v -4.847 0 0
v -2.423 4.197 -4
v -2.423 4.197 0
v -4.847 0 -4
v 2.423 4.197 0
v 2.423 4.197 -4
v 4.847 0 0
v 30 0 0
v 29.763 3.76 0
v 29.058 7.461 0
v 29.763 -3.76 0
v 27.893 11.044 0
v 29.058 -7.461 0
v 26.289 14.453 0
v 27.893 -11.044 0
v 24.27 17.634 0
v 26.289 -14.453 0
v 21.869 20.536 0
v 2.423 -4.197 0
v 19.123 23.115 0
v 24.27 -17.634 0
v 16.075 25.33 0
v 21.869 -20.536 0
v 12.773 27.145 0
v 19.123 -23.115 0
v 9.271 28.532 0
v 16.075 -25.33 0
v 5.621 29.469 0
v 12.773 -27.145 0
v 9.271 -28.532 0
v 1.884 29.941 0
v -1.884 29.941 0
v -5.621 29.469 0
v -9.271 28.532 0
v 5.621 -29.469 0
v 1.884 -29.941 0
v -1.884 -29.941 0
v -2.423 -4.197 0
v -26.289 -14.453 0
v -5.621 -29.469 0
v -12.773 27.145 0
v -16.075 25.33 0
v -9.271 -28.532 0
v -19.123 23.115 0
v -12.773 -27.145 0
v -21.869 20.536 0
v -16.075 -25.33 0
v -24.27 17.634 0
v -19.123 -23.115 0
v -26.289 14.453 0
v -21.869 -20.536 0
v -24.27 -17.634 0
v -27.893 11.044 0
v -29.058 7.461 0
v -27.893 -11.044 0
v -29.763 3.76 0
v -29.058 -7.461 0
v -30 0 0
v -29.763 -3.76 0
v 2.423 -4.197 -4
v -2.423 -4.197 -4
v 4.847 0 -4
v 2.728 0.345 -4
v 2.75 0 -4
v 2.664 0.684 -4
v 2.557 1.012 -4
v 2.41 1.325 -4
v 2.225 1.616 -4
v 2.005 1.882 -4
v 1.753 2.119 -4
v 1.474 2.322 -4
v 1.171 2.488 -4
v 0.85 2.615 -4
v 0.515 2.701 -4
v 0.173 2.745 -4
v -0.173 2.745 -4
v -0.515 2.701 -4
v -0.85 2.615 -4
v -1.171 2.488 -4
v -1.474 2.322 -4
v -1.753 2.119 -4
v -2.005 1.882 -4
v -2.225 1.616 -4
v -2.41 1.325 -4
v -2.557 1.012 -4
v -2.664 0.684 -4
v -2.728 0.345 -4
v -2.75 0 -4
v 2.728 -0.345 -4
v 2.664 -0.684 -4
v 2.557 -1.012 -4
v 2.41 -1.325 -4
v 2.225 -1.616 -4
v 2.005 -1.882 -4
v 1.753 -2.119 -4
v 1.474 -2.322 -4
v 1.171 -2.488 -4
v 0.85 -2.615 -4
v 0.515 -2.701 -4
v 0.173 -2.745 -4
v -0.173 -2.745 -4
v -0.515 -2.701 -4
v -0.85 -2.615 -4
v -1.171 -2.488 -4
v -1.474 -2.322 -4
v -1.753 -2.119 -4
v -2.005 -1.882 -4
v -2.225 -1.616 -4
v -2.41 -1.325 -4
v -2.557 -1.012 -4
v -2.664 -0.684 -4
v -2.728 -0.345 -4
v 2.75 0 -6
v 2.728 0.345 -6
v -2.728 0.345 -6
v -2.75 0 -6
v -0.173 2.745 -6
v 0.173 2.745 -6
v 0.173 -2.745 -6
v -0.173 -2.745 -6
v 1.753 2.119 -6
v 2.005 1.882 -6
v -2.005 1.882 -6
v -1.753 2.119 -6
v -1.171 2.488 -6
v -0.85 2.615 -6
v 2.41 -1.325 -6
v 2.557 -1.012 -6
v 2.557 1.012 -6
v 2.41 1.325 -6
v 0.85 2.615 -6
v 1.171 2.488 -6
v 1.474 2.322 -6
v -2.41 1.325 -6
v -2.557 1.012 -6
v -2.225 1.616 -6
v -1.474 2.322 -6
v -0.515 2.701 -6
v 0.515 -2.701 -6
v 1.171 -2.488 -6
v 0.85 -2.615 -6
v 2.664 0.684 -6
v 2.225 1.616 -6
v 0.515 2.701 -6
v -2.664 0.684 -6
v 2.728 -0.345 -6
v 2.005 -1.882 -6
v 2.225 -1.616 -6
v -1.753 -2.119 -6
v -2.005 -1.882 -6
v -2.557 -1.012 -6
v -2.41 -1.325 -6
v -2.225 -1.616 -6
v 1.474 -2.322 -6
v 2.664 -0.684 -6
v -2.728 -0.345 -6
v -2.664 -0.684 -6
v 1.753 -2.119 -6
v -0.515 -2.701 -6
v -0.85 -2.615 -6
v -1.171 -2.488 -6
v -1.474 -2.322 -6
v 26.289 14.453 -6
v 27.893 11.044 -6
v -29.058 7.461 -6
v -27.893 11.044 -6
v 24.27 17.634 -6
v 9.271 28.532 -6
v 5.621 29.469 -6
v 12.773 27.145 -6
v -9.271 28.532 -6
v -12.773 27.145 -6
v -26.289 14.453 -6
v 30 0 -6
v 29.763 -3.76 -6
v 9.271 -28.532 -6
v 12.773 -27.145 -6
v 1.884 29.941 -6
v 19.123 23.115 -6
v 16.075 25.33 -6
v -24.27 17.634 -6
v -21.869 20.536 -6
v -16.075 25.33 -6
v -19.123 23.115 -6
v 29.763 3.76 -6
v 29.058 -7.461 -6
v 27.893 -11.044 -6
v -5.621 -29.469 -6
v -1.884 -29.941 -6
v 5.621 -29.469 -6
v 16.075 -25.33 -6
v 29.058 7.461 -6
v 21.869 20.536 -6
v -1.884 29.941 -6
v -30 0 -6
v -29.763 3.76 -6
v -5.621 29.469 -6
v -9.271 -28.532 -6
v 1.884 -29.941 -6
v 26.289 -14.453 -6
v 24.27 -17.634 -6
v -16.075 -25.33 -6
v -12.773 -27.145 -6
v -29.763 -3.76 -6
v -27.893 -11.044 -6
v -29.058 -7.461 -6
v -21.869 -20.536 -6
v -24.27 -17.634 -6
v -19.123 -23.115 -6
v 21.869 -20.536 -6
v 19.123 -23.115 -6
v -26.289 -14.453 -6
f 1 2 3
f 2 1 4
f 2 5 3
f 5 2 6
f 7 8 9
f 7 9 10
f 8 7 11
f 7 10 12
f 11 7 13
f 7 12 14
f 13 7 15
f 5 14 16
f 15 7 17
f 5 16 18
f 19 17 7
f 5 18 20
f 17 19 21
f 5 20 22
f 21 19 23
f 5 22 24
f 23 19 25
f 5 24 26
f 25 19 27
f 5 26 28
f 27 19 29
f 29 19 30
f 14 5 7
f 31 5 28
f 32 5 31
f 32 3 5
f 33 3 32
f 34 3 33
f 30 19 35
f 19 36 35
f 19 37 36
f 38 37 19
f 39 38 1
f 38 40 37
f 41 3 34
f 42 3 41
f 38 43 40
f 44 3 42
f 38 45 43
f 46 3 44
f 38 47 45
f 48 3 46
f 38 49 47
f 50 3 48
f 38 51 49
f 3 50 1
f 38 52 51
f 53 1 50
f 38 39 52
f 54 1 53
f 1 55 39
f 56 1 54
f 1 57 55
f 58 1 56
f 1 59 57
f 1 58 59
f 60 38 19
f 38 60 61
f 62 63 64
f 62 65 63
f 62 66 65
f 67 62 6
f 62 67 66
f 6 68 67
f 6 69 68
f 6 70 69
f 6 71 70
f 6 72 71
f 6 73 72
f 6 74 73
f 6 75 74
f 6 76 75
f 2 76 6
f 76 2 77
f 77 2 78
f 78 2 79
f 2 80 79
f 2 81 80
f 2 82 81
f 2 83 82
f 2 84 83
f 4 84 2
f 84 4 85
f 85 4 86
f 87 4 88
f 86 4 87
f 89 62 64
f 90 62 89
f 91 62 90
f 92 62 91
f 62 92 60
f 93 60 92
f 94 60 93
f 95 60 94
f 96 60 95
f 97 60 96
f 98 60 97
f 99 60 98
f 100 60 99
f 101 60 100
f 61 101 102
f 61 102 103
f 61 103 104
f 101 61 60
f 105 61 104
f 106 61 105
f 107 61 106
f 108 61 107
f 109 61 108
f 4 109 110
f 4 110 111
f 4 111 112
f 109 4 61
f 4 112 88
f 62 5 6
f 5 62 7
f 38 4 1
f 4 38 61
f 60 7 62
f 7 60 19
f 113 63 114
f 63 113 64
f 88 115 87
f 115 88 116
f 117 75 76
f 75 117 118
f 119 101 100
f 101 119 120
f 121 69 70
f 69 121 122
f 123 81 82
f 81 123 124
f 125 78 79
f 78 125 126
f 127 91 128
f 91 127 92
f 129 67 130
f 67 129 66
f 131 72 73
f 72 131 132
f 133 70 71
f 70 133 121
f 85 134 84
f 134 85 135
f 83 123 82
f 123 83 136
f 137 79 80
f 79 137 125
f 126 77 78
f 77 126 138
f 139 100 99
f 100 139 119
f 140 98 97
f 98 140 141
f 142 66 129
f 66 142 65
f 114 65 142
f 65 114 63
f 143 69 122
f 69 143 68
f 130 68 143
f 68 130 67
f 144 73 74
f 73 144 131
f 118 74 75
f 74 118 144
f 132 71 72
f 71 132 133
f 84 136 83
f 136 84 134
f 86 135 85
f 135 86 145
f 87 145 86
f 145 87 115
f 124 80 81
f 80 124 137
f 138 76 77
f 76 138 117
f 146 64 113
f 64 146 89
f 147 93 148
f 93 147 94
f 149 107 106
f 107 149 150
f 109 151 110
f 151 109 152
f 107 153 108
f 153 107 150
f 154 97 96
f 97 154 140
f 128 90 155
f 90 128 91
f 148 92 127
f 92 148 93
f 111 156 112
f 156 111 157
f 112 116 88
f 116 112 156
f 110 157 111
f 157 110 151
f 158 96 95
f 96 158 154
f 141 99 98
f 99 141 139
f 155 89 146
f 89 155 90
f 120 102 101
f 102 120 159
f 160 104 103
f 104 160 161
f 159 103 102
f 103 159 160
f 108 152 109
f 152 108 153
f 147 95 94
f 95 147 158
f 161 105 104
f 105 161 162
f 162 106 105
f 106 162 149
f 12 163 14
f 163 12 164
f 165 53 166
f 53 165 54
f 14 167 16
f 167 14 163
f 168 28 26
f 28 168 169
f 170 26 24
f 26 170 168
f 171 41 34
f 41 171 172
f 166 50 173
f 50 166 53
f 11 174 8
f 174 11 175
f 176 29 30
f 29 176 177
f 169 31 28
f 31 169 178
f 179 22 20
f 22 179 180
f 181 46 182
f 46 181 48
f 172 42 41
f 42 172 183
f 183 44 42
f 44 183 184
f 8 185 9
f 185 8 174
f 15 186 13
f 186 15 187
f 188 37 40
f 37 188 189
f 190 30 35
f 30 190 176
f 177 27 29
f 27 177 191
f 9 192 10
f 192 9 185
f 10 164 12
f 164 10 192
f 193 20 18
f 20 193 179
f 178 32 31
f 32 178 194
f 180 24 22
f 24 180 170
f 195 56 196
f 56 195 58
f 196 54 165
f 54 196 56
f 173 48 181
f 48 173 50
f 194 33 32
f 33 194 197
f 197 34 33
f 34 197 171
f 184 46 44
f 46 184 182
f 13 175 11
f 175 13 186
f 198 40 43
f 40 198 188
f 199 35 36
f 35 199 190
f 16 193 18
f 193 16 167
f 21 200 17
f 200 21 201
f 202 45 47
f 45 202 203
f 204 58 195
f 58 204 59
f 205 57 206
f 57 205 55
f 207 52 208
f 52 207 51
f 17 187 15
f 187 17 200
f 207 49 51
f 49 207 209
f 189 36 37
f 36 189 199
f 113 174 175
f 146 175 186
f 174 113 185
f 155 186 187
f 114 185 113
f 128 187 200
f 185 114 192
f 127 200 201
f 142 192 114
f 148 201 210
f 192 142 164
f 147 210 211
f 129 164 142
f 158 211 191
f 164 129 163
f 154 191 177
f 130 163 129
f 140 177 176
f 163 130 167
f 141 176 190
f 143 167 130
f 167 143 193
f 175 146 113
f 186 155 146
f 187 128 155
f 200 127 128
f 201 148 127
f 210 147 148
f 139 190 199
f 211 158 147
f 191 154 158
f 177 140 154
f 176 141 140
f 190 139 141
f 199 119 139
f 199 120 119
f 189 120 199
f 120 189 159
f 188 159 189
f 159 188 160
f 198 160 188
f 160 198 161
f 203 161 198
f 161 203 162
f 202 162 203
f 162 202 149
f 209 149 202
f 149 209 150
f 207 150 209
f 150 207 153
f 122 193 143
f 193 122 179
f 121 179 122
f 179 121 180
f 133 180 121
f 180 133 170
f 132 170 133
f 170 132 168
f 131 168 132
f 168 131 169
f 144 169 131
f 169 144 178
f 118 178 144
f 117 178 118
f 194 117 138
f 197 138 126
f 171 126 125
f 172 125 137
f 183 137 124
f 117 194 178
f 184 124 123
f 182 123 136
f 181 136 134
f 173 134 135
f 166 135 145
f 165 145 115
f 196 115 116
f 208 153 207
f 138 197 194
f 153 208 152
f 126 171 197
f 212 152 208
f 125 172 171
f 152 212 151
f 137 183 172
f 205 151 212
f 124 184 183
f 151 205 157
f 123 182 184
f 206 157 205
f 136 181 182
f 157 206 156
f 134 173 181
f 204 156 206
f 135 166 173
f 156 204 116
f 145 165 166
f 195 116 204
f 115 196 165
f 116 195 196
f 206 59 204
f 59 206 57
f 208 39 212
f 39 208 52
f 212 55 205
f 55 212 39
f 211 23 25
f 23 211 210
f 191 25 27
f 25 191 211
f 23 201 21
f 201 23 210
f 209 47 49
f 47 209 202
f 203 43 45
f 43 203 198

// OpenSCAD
$fn = 50;


difference() {
	union() {
		translate(v = [0, 0, -6.0000000000]) {
			cylinder(h = 6.0000000000, r = 30.0000000000);
		}
	}
	union() {
		translate(v = [0, 0, 0]) {
			rotate(a = [0, 0, 0]) {
				difference() {
					union() {
						translate(v = [0, 0, -4]) {
							#linear_extrude(height = 4) {
								polygon(points = [[4.8468000000, 0.0000000000], [2.4234000000, 4.1974519271], [-2.4234000000, 4.1974519271], [-4.8468000000, 0.0000000000], [-2.4234000000, -4.1974519271], [2.4234000000, -4.1974519271]]);
							}
						}
					}
					union();
				}
			}
		}
		#translate(v = [0, 0, -100.0000000000]) {
			cylinder(h = 200, r = 2.7500000000);
		}
	}
}
